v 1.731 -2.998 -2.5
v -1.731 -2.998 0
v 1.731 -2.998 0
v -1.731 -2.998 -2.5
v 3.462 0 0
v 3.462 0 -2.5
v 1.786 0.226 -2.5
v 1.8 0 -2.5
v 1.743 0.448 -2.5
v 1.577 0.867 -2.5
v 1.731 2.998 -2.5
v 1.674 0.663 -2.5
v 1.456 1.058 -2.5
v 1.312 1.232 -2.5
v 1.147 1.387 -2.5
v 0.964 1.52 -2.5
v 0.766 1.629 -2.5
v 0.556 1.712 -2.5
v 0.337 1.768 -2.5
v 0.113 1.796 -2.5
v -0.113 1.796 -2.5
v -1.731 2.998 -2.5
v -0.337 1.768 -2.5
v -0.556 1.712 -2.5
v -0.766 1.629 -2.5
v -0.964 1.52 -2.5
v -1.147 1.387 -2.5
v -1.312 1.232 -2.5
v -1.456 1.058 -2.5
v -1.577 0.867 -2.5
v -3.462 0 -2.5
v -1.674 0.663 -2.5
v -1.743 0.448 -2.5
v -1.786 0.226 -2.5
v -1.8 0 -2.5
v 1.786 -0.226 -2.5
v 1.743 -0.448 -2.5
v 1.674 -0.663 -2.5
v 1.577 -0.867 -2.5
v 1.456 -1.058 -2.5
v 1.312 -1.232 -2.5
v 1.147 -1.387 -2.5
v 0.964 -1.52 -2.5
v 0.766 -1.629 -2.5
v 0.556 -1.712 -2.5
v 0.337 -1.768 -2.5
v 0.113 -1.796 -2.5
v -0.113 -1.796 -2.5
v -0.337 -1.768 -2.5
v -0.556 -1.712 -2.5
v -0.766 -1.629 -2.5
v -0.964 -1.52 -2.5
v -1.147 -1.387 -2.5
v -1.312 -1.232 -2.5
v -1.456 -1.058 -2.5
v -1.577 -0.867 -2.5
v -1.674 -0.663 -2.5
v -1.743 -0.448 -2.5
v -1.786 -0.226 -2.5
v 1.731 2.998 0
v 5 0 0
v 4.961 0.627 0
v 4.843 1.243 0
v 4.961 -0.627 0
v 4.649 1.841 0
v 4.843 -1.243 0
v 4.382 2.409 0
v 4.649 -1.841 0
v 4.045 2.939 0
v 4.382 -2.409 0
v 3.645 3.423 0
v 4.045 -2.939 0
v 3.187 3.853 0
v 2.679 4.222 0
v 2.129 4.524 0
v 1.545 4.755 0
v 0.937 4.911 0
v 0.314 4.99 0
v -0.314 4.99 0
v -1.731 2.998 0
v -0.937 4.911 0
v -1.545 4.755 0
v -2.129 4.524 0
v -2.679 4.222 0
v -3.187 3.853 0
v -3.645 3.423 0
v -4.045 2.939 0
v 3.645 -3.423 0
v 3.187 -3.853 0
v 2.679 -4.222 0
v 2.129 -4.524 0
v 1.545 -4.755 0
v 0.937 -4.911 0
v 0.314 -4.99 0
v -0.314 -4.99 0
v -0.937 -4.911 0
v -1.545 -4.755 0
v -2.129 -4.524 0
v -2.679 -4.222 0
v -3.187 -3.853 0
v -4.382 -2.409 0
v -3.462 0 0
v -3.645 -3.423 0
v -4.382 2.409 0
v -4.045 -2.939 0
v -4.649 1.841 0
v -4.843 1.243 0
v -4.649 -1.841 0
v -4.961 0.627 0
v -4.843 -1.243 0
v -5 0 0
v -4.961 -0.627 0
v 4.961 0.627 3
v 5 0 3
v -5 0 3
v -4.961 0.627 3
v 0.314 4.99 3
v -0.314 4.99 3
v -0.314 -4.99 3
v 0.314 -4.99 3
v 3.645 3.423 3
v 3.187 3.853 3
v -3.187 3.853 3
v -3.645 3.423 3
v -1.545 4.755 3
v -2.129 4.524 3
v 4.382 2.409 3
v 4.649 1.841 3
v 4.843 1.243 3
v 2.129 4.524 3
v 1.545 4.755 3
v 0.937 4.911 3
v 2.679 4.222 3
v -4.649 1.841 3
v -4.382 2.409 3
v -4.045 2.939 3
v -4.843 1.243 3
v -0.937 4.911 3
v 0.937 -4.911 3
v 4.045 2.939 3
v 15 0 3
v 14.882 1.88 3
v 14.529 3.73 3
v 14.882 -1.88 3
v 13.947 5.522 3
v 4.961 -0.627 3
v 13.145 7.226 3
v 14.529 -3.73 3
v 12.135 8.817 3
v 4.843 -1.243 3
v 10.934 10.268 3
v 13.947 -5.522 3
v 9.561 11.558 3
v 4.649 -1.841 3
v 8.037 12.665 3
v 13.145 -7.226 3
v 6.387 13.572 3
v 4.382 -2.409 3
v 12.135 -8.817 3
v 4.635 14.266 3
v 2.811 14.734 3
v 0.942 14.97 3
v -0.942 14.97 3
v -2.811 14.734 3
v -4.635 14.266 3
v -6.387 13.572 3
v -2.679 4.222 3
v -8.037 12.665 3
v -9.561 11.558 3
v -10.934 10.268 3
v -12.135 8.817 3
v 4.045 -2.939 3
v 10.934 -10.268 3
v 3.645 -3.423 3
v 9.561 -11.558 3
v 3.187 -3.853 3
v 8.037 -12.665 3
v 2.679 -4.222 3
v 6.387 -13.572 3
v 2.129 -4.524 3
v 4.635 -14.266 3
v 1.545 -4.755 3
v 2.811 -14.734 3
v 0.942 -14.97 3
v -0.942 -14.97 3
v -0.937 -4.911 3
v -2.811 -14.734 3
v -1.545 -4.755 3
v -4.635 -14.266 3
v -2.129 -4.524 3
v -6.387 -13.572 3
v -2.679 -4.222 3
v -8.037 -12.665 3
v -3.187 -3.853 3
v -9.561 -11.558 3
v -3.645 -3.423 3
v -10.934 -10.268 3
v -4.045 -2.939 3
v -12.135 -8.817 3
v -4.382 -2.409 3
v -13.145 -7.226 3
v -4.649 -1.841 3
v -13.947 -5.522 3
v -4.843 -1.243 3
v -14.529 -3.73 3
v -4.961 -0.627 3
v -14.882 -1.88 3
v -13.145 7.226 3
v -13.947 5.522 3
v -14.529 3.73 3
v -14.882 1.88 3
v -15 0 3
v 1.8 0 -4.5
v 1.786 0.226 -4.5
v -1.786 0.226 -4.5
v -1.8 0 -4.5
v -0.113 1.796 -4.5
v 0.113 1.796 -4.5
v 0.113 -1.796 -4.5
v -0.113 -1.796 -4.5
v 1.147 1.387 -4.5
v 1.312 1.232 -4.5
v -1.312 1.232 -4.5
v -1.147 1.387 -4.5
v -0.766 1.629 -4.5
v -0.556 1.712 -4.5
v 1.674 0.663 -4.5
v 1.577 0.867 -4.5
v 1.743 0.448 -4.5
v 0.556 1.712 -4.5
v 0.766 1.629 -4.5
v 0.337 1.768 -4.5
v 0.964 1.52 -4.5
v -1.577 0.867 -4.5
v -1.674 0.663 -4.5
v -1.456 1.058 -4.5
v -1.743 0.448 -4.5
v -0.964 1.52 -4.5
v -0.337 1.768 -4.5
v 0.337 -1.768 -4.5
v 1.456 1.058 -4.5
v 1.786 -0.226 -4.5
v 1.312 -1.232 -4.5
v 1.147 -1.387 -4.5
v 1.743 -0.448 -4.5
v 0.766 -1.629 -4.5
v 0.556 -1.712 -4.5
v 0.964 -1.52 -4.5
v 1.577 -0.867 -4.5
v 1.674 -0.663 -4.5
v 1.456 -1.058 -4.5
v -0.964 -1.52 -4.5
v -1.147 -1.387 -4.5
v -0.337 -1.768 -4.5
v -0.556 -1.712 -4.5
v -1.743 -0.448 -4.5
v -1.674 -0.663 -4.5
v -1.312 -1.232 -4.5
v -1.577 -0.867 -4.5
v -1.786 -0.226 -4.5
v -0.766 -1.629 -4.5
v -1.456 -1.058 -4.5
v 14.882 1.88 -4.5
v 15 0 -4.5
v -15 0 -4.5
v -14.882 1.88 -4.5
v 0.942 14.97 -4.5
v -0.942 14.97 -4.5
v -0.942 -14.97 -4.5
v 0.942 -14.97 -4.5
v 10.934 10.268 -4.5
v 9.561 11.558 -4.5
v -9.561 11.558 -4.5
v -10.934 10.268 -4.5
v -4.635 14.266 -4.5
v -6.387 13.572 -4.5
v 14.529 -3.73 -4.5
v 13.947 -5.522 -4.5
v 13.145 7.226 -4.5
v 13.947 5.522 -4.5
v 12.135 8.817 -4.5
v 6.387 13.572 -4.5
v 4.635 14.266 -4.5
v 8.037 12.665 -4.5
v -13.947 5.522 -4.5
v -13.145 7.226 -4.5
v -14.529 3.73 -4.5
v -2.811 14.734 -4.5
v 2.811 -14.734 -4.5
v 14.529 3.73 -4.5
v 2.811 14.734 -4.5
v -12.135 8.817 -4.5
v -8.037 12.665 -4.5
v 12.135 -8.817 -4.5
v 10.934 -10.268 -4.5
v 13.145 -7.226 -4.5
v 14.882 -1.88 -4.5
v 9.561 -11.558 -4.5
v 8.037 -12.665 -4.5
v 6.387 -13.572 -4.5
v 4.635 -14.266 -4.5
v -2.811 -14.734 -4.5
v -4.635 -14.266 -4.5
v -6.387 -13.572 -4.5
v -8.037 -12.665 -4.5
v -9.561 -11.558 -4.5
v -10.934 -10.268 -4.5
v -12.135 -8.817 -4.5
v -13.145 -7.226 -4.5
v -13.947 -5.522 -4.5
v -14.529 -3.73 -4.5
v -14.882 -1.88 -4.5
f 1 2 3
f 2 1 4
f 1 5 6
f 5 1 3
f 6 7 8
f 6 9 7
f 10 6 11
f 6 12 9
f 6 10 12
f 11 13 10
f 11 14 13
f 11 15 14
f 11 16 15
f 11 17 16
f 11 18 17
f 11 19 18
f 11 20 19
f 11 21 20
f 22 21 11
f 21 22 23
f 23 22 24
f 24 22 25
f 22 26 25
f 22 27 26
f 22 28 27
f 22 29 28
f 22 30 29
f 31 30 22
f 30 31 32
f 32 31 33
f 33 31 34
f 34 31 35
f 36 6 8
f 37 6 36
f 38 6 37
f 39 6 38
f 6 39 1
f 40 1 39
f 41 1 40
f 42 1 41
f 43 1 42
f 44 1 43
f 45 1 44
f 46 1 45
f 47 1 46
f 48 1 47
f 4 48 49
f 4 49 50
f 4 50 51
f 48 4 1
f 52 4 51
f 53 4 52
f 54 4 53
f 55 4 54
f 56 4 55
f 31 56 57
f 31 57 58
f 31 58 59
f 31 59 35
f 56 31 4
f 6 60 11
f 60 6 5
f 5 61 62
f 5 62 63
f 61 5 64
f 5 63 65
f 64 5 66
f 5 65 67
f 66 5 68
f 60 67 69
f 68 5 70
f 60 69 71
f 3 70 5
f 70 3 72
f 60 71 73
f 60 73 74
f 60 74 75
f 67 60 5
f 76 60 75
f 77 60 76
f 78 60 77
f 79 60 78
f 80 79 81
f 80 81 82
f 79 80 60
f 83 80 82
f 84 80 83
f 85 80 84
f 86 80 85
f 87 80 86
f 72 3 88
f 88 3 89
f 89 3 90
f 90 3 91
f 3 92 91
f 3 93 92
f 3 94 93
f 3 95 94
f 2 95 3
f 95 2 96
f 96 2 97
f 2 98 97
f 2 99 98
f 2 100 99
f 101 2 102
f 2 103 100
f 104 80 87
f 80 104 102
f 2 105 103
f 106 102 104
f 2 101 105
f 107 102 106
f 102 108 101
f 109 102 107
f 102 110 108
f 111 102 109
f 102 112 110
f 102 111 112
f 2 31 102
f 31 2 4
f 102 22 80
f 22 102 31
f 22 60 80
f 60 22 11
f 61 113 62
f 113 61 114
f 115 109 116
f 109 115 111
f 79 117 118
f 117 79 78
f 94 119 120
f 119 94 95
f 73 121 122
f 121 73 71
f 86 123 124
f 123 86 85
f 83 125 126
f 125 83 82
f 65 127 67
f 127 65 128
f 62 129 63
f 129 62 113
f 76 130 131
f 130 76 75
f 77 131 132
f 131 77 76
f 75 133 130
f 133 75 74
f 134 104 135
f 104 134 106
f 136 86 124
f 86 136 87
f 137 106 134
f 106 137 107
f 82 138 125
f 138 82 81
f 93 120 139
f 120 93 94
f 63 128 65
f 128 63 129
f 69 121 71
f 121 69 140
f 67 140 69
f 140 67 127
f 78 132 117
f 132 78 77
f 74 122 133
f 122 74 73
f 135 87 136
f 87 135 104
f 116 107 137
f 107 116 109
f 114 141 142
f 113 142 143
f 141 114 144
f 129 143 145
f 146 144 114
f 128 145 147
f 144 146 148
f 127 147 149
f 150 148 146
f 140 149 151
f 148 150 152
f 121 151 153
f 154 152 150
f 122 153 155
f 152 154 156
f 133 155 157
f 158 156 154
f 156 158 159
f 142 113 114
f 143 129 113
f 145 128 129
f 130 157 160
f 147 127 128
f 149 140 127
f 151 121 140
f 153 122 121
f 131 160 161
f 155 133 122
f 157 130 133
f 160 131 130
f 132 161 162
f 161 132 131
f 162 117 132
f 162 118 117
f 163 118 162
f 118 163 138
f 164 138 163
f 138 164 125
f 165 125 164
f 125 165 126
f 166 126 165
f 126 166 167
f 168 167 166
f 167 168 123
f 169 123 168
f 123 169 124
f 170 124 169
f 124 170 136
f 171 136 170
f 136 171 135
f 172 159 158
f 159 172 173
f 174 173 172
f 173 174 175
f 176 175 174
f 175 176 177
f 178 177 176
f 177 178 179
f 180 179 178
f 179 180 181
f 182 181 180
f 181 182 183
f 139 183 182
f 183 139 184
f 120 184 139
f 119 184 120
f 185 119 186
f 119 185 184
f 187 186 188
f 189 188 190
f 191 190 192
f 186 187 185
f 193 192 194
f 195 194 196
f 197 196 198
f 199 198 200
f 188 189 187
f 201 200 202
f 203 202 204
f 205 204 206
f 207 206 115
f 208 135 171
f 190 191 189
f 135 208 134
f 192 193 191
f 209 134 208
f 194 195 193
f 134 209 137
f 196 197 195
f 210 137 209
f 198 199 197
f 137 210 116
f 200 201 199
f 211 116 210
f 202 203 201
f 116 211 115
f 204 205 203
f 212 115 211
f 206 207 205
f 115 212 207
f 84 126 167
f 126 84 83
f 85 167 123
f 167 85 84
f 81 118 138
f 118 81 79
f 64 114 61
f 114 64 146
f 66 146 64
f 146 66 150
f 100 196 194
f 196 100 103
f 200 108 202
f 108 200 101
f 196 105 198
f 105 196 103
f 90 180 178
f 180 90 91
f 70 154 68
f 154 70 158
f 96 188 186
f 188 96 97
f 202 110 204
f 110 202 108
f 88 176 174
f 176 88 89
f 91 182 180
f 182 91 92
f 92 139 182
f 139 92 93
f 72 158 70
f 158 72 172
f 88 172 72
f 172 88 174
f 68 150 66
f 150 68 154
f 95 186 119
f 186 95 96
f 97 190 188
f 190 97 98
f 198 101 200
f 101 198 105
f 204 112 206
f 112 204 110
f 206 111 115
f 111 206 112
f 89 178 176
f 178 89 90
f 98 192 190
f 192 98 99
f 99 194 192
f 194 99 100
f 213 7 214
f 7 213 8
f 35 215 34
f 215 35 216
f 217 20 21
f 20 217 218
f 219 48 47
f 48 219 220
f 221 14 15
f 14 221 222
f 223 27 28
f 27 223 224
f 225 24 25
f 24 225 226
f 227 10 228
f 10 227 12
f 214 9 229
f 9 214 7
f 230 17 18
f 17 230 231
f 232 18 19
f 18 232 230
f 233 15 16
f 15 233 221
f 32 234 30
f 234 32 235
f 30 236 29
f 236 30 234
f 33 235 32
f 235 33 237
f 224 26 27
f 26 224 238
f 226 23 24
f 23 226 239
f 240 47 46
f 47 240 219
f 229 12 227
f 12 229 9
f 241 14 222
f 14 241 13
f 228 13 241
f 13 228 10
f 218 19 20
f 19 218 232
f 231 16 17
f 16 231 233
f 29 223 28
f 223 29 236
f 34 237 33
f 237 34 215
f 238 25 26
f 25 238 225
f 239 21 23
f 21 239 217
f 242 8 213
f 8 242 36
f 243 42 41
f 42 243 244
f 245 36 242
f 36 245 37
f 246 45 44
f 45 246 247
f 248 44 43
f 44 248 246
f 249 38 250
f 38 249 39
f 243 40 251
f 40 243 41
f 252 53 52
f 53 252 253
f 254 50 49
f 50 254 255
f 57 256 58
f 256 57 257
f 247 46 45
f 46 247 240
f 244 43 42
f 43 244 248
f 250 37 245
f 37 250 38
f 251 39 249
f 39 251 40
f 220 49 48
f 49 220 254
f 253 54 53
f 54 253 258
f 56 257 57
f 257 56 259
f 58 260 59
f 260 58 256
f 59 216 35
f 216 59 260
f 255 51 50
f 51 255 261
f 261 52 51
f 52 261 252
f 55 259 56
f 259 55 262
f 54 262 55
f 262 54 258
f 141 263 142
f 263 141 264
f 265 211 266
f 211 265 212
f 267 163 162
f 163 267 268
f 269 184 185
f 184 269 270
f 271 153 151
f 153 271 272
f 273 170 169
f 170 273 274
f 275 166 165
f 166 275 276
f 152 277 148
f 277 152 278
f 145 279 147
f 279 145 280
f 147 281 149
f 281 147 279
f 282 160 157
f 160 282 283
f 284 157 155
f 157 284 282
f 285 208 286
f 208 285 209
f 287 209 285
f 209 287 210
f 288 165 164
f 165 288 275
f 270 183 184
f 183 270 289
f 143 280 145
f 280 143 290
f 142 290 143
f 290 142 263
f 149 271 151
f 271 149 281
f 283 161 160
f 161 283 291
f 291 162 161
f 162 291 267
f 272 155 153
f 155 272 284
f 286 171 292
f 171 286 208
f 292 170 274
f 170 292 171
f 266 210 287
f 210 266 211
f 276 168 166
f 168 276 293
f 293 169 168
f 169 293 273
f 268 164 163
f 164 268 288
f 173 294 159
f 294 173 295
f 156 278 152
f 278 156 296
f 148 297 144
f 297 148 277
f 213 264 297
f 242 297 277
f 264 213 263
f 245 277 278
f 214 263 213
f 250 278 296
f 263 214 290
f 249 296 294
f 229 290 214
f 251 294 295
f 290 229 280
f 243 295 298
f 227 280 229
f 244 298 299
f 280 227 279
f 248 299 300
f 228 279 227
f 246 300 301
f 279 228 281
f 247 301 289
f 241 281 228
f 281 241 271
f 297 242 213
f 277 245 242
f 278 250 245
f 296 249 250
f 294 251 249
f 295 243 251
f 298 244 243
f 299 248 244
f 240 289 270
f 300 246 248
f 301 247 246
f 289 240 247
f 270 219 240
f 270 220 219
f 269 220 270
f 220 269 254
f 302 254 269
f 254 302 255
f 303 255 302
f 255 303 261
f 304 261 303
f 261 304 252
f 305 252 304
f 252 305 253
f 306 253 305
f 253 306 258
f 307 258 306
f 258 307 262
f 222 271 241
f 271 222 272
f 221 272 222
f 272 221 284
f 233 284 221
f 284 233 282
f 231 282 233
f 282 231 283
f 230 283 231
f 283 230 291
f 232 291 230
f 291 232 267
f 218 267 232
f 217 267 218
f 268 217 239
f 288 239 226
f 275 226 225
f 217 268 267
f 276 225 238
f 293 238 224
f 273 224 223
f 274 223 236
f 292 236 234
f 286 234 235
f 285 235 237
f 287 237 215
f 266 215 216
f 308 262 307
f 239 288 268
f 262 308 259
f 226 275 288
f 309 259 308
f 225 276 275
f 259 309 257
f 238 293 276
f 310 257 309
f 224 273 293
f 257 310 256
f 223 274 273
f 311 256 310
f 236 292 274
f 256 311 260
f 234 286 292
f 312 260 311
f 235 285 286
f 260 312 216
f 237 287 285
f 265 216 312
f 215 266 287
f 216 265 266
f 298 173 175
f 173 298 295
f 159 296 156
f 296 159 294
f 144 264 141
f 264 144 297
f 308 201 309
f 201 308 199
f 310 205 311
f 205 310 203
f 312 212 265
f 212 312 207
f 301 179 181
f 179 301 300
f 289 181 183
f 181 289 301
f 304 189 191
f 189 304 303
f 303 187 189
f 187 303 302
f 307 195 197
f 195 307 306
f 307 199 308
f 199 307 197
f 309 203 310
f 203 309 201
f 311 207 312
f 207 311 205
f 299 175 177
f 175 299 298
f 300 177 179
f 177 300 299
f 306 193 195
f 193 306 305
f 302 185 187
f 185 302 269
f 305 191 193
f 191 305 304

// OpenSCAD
$fn = 50;


difference() {
	union() {
		translate(v = [0, 0, -4.5000000000]) {
			cylinder(h = 7.5000000000, r = 15.0000000000);
		}
	}
	union() {
		translate(v = [0, 0, 0]) {
			rotate(a = [0, 0, 0]) {
				difference() {
					union() {
						translate(v = [0, 0, -2.5000000000]) {
							linear_extrude(height = 2.5000000000) {
								polygon(points = [[3.4620000000, 0.0000000000], [1.7310000000, 2.9981799479], [-1.7310000000, 2.9981799479], [-3.4620000000, 0.0000000000], [-1.7310000000, -2.9981799479], [1.7310000000, -2.9981799479]]);
							}
						}
					}
					union();
				}
			}
		}
		#cylinder(h = 3, r = 5.0000000000);
		#translate(v = [0, 0, -100.0000000000]) {
			cylinder(h = 200, r = 1.8000000000);
		}
	}
}
